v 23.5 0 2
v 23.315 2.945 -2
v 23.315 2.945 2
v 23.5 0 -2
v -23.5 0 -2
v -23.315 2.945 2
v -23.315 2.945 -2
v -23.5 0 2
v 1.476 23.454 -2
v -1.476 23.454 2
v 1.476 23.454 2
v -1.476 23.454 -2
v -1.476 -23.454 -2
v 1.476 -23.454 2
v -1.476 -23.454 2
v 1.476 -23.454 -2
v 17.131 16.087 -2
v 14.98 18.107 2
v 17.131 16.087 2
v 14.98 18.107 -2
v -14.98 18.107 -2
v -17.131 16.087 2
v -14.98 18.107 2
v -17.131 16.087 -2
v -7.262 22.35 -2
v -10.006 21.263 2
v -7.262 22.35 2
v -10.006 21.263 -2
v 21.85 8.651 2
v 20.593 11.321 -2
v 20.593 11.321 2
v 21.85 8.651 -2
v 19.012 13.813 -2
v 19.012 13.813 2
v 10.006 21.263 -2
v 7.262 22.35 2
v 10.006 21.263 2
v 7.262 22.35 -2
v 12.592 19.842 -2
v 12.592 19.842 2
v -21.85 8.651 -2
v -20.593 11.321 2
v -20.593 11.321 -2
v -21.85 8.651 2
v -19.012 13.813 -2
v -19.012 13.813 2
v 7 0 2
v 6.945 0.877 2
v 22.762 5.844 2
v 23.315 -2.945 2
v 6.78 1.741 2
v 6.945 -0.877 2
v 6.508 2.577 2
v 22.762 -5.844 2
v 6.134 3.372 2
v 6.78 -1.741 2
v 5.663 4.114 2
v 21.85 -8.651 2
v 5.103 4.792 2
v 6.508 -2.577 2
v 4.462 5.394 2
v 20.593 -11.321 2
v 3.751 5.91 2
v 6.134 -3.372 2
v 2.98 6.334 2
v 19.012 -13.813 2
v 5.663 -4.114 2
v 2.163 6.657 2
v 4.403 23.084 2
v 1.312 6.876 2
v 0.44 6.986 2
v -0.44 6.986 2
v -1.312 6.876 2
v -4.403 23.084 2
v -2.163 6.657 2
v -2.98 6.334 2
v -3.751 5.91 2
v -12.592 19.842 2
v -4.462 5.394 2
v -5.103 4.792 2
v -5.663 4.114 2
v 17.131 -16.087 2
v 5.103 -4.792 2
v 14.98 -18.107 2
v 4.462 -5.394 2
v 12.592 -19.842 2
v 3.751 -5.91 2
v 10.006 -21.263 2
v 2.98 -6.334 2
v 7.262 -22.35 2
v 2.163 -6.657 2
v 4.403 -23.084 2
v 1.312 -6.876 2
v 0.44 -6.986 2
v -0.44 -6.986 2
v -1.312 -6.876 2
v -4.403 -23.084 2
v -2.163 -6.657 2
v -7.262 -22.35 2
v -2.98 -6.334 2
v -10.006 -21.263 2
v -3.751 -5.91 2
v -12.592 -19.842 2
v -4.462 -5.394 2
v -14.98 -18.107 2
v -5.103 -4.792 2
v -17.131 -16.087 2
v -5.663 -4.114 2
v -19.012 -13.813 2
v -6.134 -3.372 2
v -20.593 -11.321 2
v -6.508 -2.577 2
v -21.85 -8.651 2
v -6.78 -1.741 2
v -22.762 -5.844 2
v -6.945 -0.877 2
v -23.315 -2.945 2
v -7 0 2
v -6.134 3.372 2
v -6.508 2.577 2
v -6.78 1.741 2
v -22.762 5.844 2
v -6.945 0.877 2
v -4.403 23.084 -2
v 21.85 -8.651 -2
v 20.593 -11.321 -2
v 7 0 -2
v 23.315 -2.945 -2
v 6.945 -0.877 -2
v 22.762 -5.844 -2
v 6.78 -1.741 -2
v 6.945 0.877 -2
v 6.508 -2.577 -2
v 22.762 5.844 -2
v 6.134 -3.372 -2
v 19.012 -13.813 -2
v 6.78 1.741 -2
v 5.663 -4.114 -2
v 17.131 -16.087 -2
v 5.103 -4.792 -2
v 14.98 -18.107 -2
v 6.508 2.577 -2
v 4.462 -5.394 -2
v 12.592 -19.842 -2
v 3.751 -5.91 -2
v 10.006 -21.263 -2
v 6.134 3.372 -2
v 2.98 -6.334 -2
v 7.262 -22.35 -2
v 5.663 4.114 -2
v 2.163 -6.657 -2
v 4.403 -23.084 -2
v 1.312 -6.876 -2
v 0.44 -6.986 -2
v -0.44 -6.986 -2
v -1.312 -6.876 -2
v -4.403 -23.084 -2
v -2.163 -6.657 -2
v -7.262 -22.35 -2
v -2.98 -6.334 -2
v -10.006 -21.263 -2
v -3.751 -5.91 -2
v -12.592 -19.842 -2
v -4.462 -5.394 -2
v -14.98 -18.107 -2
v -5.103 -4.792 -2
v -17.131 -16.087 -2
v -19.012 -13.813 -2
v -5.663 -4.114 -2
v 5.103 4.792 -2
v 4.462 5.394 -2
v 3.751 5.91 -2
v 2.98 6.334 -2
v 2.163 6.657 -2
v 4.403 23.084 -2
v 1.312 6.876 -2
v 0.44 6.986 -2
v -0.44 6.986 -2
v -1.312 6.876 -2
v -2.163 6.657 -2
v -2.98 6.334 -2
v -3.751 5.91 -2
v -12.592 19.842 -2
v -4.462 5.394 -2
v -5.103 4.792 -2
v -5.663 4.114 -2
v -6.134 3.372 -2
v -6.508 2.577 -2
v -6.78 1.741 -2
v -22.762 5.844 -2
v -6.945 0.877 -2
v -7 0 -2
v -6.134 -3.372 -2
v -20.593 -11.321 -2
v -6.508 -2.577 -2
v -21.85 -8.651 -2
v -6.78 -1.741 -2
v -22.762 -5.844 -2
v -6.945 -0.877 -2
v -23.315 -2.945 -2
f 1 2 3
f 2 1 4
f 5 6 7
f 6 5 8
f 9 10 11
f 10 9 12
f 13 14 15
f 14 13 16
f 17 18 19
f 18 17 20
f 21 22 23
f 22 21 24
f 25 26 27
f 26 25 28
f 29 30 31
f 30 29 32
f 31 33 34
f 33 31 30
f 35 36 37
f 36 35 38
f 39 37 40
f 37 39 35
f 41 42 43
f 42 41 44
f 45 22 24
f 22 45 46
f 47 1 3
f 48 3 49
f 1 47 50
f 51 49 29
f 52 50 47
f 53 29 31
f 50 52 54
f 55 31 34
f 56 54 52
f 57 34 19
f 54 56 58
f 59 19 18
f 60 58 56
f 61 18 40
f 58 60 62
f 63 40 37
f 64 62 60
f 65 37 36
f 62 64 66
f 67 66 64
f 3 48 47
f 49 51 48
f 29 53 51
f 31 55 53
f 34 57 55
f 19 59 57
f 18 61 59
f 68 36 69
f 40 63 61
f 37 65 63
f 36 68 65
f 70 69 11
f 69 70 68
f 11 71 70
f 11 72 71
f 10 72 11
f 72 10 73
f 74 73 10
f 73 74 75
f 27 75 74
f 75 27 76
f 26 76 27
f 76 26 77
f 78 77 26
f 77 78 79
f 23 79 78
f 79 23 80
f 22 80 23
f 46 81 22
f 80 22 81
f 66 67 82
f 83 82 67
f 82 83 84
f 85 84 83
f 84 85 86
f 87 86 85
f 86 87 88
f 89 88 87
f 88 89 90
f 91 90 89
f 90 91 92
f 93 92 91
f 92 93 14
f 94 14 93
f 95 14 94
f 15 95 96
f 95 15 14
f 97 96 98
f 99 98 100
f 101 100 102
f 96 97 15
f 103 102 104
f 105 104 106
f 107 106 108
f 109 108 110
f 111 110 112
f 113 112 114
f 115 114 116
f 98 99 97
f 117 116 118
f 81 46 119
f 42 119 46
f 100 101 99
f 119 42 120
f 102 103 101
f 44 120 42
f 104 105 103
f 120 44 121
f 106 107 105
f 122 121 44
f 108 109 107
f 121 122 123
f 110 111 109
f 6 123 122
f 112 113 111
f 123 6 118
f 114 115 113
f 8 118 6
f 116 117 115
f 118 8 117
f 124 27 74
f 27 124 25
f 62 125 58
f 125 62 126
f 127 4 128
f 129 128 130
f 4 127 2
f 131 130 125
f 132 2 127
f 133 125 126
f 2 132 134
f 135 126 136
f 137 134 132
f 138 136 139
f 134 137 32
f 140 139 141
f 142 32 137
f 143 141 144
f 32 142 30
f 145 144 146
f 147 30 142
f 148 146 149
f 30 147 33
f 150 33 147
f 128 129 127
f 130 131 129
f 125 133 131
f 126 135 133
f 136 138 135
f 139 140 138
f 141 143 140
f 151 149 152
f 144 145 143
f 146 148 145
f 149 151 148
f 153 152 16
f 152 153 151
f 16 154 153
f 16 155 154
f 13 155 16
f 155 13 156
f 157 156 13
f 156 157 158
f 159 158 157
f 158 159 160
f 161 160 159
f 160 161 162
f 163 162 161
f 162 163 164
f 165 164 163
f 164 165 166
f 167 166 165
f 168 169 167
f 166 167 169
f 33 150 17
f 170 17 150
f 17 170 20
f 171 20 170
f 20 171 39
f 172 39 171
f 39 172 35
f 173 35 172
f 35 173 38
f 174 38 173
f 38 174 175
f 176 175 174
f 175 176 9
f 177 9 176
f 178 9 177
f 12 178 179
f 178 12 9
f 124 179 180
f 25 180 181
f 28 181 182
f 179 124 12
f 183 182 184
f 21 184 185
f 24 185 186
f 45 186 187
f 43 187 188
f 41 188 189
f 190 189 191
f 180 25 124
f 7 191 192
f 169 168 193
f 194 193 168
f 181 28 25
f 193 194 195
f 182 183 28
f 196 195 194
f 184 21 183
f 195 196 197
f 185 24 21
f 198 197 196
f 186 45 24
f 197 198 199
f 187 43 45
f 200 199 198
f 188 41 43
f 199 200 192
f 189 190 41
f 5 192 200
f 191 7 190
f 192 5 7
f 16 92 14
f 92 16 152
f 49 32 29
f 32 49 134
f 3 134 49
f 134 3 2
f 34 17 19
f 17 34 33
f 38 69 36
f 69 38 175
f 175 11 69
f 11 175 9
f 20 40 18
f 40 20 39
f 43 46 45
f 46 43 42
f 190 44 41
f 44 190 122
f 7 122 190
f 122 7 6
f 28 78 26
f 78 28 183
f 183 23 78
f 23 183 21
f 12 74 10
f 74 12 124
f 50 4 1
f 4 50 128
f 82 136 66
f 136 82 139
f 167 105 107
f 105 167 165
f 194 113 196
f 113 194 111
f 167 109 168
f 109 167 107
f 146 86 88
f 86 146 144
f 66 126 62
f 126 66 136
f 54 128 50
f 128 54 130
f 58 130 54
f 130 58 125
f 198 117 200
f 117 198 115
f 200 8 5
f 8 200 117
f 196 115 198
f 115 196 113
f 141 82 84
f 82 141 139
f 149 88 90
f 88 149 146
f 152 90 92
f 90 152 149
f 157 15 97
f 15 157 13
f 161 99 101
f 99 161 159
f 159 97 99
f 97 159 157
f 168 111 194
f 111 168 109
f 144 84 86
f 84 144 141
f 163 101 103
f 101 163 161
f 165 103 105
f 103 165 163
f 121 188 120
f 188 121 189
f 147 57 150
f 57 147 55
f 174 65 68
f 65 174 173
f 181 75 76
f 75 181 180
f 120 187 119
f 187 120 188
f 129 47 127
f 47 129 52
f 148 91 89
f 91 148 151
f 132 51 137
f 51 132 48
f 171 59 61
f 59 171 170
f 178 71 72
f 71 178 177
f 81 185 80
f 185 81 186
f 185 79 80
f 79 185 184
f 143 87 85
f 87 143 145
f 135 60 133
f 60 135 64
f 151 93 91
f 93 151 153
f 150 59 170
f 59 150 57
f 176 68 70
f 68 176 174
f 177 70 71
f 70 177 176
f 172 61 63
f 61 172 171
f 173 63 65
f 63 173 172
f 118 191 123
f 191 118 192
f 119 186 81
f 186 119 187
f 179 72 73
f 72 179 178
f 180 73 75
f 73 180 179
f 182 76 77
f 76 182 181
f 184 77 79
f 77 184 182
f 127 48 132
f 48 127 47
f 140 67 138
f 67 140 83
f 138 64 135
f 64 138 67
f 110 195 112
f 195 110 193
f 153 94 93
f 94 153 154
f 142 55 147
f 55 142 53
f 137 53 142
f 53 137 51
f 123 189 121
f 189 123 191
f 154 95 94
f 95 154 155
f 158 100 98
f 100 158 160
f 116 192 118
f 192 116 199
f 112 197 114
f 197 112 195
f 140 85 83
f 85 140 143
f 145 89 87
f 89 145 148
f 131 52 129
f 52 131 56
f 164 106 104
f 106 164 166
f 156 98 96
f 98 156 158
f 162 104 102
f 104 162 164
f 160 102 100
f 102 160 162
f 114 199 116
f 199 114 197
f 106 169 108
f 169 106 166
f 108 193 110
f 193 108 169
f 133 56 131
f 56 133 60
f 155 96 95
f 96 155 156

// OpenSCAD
$fn = 50;


difference() {
	union() {
		translate(v = [0, 0, -2.0000000000]) {
			cylinder(h = 4, r = 23.5000000000);
		}
	}
	union() {
		translate(v = [0, 0, -100.0000000000]) {
			cylinder(h = 200, r = 7);
		}
	}
}
